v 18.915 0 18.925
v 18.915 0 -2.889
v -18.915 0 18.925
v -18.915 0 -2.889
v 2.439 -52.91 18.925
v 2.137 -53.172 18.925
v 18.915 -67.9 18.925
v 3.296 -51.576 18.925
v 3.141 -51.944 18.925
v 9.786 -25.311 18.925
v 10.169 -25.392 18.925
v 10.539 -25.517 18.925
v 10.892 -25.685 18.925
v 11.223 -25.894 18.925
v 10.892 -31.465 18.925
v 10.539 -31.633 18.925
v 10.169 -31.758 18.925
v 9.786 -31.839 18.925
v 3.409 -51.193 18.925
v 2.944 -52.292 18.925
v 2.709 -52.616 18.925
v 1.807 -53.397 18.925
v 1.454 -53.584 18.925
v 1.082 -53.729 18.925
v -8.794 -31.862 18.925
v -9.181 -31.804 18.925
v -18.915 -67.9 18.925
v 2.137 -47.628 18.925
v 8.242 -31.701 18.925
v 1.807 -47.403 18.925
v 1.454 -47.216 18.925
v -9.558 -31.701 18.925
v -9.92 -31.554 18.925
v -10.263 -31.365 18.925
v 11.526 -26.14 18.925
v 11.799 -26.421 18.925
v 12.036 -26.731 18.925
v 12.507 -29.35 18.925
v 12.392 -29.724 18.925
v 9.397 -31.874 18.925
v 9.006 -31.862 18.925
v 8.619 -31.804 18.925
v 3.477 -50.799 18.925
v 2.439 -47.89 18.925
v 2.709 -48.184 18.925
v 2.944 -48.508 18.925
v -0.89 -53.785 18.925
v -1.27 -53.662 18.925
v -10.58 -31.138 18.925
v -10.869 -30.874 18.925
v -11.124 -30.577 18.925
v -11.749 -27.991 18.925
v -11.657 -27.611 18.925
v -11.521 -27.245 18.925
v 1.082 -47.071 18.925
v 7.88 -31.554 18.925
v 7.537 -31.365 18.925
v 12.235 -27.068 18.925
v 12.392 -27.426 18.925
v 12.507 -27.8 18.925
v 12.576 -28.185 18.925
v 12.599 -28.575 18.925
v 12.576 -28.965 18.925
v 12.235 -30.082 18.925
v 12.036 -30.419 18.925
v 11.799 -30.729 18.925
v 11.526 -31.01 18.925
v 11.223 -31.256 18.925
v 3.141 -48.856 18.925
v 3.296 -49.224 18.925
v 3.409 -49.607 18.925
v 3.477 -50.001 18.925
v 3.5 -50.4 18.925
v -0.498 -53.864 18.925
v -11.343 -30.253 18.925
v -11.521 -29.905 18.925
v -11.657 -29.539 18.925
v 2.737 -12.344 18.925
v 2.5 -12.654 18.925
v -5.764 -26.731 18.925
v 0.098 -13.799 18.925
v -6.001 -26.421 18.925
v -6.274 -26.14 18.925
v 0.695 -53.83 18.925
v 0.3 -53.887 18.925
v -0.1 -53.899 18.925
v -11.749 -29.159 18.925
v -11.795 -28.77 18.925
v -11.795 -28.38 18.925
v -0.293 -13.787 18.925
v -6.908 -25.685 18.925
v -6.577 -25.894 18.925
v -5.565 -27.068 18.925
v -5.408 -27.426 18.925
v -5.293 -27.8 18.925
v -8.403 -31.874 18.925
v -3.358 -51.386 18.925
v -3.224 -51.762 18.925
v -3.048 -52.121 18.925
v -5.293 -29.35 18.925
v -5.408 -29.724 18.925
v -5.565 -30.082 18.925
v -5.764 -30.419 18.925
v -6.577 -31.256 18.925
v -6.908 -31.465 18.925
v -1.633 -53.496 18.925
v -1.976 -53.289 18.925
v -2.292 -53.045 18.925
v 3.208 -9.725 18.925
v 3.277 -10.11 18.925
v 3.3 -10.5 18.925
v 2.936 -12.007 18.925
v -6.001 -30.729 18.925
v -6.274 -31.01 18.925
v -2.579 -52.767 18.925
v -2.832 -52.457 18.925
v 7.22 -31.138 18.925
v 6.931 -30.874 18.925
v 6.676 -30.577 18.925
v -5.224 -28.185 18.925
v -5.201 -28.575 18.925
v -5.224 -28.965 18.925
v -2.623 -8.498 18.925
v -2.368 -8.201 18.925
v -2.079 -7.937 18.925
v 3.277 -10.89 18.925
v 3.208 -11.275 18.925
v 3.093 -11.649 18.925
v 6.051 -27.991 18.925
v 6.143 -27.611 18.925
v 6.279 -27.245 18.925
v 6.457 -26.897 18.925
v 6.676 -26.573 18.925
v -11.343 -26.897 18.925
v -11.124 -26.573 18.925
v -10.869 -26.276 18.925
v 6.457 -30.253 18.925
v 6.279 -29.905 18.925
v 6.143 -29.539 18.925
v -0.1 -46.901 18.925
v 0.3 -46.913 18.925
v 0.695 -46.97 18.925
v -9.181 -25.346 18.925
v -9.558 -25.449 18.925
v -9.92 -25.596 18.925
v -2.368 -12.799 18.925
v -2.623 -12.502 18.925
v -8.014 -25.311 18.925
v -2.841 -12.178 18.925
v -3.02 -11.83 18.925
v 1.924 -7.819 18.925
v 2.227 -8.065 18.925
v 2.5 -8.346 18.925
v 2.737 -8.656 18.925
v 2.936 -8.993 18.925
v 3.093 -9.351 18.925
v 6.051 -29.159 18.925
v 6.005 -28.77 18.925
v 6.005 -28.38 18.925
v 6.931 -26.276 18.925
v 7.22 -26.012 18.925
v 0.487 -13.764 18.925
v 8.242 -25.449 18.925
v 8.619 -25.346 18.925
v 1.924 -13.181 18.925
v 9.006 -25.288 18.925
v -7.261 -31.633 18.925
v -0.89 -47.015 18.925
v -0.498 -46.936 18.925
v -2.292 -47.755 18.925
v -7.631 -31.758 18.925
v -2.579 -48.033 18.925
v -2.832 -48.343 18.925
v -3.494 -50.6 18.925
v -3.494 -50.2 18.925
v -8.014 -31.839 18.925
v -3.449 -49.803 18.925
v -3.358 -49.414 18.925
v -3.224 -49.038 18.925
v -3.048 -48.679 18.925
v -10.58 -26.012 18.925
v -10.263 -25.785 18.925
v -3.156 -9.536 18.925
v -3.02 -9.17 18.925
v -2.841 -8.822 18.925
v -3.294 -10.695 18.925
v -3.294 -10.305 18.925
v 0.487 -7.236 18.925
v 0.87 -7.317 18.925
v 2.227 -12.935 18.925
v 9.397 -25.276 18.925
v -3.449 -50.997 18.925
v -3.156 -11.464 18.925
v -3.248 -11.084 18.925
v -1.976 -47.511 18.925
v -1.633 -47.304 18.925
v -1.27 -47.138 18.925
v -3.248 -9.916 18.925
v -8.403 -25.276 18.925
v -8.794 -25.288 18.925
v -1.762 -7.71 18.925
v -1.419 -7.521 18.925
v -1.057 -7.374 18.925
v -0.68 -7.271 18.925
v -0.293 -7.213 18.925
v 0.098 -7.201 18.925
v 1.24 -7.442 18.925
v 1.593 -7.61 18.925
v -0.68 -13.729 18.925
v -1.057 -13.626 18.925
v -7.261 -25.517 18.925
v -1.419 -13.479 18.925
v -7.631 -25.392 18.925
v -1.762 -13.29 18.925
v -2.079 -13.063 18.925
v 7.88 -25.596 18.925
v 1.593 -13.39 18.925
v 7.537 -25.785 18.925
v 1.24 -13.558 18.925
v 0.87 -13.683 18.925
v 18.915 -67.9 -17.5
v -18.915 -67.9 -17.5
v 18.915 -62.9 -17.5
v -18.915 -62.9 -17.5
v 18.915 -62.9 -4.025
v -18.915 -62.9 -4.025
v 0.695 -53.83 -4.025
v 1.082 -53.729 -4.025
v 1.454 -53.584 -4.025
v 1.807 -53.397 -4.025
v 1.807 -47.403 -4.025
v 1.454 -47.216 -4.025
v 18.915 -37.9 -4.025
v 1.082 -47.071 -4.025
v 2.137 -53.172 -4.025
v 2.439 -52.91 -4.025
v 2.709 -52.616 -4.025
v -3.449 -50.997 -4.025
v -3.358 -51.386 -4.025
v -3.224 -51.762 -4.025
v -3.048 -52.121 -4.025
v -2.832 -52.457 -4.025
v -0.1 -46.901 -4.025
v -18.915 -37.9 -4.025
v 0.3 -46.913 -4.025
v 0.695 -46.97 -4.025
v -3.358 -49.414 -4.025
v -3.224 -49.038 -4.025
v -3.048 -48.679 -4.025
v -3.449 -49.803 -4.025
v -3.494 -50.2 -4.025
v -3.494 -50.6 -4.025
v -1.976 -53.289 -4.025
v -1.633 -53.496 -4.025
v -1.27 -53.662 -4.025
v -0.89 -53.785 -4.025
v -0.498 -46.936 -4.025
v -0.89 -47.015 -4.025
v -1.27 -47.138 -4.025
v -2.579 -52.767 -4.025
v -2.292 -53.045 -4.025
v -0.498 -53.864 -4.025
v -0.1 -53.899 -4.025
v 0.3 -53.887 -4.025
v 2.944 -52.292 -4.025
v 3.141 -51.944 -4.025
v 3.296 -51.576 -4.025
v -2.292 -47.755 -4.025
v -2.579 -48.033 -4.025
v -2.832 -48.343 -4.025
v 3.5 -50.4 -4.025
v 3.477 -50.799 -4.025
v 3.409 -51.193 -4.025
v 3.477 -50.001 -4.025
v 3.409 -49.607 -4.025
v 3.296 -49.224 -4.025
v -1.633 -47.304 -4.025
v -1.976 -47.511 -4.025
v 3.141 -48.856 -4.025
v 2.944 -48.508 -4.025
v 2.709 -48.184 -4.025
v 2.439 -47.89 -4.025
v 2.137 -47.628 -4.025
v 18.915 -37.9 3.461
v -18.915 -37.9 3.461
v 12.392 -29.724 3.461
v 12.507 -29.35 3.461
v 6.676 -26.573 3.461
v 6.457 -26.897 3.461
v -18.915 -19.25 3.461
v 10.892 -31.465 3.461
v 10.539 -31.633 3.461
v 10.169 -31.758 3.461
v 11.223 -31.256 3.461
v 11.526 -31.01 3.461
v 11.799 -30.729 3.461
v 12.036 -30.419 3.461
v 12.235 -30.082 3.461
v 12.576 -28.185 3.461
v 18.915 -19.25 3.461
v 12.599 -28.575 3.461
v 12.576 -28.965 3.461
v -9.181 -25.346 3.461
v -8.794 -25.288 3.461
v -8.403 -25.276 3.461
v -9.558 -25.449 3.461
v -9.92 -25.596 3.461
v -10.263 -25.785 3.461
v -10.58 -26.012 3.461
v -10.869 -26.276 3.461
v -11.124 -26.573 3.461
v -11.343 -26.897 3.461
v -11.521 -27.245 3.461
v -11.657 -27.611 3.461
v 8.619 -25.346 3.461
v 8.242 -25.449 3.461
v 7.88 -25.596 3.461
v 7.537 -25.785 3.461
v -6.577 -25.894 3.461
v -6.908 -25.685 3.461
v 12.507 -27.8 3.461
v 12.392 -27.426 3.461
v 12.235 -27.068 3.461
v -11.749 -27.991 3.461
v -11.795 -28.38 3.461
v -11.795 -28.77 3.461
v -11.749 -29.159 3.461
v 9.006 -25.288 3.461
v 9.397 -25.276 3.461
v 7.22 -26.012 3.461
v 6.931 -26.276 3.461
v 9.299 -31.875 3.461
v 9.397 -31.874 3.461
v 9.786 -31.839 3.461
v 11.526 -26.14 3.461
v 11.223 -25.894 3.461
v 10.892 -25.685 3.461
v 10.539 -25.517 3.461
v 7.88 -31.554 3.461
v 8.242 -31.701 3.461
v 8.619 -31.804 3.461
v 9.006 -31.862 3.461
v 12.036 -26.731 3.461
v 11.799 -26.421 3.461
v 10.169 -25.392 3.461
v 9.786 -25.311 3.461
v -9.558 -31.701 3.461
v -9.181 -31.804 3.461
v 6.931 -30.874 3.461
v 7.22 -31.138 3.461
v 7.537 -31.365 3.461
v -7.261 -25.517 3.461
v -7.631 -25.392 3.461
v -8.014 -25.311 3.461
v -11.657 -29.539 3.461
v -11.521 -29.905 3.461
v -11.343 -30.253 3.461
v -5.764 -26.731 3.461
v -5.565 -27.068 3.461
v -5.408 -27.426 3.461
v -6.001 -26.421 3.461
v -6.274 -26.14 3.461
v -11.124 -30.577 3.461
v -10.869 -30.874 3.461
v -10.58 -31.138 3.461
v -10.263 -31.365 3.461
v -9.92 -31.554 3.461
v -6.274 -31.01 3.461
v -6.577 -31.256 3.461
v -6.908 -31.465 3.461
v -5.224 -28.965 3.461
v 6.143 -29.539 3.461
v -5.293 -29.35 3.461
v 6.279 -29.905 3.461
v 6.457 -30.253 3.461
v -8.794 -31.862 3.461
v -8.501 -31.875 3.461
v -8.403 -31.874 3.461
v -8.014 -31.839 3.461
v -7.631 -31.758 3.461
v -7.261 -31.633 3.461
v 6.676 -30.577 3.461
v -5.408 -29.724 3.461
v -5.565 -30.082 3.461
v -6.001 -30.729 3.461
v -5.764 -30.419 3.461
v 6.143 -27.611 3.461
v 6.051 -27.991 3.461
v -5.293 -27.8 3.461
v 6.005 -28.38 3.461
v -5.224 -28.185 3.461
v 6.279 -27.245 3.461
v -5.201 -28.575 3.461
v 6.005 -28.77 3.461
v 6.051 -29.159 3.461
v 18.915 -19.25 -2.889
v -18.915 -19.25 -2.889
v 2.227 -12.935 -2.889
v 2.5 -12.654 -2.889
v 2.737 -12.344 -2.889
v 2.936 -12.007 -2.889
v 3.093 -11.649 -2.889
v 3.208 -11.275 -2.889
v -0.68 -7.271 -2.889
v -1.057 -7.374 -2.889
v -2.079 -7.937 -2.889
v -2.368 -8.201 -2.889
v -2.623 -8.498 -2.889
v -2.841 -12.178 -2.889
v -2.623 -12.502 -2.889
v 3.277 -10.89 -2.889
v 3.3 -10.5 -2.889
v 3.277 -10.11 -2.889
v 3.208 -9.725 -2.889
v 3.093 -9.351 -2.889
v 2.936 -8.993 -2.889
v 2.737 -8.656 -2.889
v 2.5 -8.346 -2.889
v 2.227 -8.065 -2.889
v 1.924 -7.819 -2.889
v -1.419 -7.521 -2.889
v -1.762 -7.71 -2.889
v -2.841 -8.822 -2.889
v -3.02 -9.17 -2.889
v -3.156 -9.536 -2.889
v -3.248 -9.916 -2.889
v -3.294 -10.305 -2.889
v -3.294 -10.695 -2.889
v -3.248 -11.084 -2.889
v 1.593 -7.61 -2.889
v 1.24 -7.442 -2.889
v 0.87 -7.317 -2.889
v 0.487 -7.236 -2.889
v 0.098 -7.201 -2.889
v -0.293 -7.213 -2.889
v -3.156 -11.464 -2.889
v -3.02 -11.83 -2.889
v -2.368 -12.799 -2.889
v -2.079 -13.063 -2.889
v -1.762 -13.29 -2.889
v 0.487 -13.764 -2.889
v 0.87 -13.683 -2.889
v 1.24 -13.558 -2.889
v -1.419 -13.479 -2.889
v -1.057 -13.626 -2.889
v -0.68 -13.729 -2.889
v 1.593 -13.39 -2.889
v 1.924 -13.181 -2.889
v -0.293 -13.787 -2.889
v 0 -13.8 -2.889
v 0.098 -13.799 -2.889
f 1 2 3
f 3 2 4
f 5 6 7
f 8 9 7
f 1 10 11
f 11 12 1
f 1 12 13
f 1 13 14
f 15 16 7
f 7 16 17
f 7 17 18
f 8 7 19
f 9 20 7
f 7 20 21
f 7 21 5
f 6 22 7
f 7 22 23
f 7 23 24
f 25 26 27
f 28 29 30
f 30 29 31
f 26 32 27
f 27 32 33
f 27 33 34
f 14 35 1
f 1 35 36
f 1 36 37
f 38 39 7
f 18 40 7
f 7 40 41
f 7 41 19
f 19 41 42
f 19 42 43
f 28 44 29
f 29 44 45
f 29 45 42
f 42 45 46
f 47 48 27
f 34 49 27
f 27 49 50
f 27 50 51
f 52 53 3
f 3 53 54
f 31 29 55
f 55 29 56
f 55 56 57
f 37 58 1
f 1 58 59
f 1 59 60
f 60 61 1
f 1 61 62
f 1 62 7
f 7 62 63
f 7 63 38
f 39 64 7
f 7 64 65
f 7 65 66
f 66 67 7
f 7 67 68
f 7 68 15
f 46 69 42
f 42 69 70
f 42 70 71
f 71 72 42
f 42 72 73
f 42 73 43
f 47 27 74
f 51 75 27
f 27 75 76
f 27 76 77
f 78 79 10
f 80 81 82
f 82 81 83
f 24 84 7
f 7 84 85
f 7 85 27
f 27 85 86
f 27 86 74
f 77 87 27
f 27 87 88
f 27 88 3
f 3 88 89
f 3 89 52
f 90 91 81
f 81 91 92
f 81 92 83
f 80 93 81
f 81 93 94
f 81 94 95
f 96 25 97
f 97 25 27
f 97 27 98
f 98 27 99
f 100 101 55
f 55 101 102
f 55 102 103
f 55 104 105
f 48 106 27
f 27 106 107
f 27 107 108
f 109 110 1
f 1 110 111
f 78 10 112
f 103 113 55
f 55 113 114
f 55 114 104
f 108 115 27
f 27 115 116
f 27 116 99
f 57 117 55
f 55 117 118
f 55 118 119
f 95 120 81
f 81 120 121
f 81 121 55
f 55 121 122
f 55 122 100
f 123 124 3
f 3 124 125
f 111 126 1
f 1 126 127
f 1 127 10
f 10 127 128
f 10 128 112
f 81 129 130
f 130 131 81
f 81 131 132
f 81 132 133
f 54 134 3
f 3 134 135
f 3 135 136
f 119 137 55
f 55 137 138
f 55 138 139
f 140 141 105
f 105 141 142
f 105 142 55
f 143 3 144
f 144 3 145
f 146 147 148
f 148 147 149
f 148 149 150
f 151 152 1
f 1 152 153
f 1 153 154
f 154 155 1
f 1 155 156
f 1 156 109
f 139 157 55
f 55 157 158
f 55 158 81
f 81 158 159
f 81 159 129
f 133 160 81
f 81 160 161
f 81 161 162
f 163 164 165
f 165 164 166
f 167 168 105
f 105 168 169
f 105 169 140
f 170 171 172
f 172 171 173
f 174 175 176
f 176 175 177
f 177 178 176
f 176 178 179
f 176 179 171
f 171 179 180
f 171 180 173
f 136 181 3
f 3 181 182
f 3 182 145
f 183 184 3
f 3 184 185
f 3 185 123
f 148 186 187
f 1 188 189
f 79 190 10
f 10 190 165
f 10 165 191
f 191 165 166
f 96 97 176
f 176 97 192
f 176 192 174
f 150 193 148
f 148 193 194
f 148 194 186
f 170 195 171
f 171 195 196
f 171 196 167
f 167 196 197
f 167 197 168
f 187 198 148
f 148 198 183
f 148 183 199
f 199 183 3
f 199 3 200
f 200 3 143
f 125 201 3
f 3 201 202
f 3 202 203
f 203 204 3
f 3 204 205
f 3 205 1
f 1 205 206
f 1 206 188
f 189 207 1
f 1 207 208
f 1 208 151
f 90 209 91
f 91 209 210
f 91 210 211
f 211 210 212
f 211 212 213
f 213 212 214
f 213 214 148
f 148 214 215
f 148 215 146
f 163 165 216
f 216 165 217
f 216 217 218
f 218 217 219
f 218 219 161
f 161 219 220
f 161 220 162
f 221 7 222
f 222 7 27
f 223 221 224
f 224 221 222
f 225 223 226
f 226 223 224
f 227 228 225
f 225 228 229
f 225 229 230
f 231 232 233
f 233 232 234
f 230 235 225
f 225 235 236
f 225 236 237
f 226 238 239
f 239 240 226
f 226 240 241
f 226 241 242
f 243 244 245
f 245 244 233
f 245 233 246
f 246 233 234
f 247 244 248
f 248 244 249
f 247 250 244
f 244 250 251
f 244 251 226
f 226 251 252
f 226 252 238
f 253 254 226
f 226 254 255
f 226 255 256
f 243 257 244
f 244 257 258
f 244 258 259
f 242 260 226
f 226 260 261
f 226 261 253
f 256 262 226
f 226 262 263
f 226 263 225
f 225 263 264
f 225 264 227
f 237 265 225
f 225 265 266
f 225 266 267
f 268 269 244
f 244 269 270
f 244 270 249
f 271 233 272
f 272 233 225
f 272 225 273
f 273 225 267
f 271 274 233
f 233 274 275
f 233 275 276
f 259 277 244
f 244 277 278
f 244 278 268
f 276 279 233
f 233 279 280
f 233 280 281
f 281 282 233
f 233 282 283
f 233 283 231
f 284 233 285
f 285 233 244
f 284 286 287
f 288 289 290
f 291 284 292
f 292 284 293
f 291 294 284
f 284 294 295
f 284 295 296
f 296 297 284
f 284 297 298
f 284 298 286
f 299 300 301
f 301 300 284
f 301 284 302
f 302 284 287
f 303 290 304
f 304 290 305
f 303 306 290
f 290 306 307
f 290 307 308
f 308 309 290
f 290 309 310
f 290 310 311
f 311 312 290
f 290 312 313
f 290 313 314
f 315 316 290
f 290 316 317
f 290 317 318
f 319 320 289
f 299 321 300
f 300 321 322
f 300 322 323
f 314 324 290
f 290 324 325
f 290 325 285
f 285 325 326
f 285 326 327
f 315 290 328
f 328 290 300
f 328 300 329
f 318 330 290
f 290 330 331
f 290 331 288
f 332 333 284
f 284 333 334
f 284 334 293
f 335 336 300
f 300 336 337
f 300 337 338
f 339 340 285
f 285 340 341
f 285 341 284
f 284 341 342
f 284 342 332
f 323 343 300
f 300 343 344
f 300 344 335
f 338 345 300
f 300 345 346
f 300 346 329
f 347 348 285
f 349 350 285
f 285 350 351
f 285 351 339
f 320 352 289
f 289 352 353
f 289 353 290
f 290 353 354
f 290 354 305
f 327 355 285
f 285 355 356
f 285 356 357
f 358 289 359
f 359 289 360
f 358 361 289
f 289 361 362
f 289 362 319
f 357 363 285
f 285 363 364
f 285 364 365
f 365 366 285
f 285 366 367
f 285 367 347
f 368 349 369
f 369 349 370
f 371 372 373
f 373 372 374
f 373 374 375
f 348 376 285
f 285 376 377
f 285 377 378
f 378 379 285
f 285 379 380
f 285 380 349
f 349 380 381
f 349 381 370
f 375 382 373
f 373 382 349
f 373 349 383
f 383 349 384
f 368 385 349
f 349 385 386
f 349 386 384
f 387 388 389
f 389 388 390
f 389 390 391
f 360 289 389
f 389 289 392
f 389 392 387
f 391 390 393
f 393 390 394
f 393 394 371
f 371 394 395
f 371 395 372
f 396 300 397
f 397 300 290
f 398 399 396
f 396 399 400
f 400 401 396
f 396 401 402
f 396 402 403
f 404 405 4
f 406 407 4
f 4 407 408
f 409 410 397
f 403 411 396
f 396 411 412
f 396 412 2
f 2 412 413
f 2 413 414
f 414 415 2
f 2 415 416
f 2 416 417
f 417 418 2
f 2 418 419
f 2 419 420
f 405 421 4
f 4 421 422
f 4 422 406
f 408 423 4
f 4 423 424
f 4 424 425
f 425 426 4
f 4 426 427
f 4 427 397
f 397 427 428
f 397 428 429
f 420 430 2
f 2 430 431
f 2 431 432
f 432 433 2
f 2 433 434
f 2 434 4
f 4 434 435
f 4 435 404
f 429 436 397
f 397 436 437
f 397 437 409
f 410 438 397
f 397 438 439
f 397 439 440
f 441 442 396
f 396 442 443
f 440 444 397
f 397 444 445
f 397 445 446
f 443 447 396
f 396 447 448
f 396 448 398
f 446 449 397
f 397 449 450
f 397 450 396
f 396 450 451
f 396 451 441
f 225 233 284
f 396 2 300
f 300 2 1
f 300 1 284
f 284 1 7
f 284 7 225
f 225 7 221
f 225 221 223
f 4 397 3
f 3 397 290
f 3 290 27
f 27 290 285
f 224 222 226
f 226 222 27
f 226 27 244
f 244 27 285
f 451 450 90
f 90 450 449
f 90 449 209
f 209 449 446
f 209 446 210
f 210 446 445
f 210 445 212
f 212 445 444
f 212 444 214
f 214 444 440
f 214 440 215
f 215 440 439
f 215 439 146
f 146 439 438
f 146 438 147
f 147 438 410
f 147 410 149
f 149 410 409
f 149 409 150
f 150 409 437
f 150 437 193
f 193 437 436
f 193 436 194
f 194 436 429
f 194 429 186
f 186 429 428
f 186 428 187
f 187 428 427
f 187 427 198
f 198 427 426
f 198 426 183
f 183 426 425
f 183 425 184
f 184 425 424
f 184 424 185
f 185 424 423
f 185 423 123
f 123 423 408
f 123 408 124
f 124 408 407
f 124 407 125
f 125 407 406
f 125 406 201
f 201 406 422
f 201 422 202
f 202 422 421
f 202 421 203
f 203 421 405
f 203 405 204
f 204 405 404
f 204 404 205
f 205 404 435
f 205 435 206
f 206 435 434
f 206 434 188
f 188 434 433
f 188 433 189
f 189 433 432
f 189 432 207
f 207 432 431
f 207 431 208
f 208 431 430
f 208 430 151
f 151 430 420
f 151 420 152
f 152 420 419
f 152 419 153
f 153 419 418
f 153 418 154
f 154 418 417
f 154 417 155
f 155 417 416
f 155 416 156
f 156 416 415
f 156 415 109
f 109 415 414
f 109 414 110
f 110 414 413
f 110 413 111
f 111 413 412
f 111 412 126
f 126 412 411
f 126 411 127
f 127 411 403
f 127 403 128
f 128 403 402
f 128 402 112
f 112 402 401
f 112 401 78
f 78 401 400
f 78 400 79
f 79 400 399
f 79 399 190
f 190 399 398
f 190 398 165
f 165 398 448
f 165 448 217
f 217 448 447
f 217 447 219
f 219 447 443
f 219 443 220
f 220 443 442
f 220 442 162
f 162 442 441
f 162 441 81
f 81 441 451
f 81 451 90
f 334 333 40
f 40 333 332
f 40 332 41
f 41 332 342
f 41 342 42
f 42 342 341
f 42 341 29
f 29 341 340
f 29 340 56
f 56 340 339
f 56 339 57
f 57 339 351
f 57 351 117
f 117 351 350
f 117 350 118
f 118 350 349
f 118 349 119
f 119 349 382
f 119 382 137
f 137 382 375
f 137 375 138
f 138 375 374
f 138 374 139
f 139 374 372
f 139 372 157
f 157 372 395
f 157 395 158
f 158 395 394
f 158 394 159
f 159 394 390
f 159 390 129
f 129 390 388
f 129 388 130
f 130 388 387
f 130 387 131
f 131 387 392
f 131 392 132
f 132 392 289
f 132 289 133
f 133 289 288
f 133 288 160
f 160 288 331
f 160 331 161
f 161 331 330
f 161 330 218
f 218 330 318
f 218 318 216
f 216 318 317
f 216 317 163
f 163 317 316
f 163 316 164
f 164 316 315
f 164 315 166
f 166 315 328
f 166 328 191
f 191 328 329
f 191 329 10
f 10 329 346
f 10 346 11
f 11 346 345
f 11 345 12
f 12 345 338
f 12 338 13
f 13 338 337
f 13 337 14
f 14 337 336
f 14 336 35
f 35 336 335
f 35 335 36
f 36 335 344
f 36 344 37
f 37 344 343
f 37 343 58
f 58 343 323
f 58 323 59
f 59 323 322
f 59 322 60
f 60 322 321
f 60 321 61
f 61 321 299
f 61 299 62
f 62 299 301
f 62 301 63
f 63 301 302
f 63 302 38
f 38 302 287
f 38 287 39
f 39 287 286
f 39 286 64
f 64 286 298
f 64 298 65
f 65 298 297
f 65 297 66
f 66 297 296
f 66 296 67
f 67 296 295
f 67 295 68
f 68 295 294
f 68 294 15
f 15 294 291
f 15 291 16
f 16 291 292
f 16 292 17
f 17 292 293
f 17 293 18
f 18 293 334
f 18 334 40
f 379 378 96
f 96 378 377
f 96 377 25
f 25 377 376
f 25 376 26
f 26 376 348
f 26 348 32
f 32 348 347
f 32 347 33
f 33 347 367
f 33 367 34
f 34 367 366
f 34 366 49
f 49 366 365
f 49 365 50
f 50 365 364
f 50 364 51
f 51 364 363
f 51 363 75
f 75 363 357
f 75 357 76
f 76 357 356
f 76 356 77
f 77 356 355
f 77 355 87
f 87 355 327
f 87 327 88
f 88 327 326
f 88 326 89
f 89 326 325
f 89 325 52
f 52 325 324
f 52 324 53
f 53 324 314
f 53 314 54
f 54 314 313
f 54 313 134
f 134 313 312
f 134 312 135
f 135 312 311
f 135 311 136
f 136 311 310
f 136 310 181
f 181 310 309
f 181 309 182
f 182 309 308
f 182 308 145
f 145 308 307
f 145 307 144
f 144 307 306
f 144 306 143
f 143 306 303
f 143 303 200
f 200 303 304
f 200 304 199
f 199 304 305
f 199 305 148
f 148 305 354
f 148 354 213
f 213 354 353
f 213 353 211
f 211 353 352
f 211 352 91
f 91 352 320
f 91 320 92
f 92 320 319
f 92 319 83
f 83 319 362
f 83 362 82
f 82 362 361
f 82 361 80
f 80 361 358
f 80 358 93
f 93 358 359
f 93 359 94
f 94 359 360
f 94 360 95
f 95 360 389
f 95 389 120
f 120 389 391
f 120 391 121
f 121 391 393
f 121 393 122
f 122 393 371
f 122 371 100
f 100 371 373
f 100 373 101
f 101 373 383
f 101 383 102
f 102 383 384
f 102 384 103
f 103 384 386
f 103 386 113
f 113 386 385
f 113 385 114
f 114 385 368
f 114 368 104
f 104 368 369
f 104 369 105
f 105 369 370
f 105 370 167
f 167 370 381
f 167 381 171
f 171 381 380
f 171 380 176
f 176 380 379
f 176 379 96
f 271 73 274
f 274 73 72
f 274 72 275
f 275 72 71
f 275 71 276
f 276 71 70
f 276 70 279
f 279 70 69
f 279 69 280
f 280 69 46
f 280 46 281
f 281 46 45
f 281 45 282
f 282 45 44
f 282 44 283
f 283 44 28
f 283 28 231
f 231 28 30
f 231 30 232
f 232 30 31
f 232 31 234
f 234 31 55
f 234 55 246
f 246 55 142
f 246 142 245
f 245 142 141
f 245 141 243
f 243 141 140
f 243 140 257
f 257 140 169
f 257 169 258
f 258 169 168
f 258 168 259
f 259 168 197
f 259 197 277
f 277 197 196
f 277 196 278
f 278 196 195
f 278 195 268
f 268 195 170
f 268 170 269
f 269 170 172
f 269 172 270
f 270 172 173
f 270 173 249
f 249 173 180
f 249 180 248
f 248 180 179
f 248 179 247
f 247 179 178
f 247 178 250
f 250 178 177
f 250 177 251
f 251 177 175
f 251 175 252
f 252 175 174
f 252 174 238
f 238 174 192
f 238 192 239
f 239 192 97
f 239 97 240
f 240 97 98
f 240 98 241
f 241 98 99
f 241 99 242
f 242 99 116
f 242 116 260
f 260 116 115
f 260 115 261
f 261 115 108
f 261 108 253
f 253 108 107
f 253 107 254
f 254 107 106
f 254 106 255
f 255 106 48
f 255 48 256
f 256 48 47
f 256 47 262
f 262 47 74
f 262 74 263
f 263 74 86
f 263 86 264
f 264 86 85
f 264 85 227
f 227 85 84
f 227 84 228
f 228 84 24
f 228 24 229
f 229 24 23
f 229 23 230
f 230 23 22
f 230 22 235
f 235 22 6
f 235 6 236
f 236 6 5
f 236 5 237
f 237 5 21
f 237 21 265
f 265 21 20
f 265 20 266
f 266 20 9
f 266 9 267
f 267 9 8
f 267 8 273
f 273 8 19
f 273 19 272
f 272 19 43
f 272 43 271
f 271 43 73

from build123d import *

# Parameters (mm, degrees)
BOSS_EXTRUDE1_DEPTH     = 18.915
CUT_EXTRUDE1_DEPTH      = 73.981798073
CUT_EXTRUDE1_DEPTH_BACK = 73.981798073
SKETCH42_R              = 3.3
SKETCH42_R_2            = 3.5


with BuildPart() as part:
    # Sketch41 → Boss-Extrude1 (new, symmetric)
    with BuildSketch(Plane(origin=(0, 0, 0), x_dir=(0, 0, -1), z_dir=(1, 0, 0))):
        Polygon((4.025167823, -62.9), (17.5, -62.9), (17.5, -67.9), (-18.925, -67.9), (-18.925, 0), (2.88943812, 0), (2.88943812, -19.25), (-3.46056188, -19.25), (-3.46056188, -37.9), (4.025167823, -37.9), align=None)
    extrude(amount=BOSS_EXTRUDE1_DEPTH, both=True)

    # Sketch42 → Cut-Extrude1 (cut, two sides: drawn at the far end of the back side and taken through both)
    with BuildSketch(Plane.XY.offset(-CUT_EXTRUDE1_DEPTH_BACK)):
        with Locations((0, -10.5)):
            Circle(SKETCH42_R)
        with Locations((0, -50.4)):
            Circle(SKETCH42_R_2)
        with Locations((-8.501076983, -28.575)):
            Circle(SKETCH42_R)
        with Locations((9.298923017, -28.575)):
            Circle(SKETCH42_R)
    extrude(amount=CUT_EXTRUDE1_DEPTH + CUT_EXTRUDE1_DEPTH_BACK, mode=Mode.SUBTRACT)


solid = part.part
